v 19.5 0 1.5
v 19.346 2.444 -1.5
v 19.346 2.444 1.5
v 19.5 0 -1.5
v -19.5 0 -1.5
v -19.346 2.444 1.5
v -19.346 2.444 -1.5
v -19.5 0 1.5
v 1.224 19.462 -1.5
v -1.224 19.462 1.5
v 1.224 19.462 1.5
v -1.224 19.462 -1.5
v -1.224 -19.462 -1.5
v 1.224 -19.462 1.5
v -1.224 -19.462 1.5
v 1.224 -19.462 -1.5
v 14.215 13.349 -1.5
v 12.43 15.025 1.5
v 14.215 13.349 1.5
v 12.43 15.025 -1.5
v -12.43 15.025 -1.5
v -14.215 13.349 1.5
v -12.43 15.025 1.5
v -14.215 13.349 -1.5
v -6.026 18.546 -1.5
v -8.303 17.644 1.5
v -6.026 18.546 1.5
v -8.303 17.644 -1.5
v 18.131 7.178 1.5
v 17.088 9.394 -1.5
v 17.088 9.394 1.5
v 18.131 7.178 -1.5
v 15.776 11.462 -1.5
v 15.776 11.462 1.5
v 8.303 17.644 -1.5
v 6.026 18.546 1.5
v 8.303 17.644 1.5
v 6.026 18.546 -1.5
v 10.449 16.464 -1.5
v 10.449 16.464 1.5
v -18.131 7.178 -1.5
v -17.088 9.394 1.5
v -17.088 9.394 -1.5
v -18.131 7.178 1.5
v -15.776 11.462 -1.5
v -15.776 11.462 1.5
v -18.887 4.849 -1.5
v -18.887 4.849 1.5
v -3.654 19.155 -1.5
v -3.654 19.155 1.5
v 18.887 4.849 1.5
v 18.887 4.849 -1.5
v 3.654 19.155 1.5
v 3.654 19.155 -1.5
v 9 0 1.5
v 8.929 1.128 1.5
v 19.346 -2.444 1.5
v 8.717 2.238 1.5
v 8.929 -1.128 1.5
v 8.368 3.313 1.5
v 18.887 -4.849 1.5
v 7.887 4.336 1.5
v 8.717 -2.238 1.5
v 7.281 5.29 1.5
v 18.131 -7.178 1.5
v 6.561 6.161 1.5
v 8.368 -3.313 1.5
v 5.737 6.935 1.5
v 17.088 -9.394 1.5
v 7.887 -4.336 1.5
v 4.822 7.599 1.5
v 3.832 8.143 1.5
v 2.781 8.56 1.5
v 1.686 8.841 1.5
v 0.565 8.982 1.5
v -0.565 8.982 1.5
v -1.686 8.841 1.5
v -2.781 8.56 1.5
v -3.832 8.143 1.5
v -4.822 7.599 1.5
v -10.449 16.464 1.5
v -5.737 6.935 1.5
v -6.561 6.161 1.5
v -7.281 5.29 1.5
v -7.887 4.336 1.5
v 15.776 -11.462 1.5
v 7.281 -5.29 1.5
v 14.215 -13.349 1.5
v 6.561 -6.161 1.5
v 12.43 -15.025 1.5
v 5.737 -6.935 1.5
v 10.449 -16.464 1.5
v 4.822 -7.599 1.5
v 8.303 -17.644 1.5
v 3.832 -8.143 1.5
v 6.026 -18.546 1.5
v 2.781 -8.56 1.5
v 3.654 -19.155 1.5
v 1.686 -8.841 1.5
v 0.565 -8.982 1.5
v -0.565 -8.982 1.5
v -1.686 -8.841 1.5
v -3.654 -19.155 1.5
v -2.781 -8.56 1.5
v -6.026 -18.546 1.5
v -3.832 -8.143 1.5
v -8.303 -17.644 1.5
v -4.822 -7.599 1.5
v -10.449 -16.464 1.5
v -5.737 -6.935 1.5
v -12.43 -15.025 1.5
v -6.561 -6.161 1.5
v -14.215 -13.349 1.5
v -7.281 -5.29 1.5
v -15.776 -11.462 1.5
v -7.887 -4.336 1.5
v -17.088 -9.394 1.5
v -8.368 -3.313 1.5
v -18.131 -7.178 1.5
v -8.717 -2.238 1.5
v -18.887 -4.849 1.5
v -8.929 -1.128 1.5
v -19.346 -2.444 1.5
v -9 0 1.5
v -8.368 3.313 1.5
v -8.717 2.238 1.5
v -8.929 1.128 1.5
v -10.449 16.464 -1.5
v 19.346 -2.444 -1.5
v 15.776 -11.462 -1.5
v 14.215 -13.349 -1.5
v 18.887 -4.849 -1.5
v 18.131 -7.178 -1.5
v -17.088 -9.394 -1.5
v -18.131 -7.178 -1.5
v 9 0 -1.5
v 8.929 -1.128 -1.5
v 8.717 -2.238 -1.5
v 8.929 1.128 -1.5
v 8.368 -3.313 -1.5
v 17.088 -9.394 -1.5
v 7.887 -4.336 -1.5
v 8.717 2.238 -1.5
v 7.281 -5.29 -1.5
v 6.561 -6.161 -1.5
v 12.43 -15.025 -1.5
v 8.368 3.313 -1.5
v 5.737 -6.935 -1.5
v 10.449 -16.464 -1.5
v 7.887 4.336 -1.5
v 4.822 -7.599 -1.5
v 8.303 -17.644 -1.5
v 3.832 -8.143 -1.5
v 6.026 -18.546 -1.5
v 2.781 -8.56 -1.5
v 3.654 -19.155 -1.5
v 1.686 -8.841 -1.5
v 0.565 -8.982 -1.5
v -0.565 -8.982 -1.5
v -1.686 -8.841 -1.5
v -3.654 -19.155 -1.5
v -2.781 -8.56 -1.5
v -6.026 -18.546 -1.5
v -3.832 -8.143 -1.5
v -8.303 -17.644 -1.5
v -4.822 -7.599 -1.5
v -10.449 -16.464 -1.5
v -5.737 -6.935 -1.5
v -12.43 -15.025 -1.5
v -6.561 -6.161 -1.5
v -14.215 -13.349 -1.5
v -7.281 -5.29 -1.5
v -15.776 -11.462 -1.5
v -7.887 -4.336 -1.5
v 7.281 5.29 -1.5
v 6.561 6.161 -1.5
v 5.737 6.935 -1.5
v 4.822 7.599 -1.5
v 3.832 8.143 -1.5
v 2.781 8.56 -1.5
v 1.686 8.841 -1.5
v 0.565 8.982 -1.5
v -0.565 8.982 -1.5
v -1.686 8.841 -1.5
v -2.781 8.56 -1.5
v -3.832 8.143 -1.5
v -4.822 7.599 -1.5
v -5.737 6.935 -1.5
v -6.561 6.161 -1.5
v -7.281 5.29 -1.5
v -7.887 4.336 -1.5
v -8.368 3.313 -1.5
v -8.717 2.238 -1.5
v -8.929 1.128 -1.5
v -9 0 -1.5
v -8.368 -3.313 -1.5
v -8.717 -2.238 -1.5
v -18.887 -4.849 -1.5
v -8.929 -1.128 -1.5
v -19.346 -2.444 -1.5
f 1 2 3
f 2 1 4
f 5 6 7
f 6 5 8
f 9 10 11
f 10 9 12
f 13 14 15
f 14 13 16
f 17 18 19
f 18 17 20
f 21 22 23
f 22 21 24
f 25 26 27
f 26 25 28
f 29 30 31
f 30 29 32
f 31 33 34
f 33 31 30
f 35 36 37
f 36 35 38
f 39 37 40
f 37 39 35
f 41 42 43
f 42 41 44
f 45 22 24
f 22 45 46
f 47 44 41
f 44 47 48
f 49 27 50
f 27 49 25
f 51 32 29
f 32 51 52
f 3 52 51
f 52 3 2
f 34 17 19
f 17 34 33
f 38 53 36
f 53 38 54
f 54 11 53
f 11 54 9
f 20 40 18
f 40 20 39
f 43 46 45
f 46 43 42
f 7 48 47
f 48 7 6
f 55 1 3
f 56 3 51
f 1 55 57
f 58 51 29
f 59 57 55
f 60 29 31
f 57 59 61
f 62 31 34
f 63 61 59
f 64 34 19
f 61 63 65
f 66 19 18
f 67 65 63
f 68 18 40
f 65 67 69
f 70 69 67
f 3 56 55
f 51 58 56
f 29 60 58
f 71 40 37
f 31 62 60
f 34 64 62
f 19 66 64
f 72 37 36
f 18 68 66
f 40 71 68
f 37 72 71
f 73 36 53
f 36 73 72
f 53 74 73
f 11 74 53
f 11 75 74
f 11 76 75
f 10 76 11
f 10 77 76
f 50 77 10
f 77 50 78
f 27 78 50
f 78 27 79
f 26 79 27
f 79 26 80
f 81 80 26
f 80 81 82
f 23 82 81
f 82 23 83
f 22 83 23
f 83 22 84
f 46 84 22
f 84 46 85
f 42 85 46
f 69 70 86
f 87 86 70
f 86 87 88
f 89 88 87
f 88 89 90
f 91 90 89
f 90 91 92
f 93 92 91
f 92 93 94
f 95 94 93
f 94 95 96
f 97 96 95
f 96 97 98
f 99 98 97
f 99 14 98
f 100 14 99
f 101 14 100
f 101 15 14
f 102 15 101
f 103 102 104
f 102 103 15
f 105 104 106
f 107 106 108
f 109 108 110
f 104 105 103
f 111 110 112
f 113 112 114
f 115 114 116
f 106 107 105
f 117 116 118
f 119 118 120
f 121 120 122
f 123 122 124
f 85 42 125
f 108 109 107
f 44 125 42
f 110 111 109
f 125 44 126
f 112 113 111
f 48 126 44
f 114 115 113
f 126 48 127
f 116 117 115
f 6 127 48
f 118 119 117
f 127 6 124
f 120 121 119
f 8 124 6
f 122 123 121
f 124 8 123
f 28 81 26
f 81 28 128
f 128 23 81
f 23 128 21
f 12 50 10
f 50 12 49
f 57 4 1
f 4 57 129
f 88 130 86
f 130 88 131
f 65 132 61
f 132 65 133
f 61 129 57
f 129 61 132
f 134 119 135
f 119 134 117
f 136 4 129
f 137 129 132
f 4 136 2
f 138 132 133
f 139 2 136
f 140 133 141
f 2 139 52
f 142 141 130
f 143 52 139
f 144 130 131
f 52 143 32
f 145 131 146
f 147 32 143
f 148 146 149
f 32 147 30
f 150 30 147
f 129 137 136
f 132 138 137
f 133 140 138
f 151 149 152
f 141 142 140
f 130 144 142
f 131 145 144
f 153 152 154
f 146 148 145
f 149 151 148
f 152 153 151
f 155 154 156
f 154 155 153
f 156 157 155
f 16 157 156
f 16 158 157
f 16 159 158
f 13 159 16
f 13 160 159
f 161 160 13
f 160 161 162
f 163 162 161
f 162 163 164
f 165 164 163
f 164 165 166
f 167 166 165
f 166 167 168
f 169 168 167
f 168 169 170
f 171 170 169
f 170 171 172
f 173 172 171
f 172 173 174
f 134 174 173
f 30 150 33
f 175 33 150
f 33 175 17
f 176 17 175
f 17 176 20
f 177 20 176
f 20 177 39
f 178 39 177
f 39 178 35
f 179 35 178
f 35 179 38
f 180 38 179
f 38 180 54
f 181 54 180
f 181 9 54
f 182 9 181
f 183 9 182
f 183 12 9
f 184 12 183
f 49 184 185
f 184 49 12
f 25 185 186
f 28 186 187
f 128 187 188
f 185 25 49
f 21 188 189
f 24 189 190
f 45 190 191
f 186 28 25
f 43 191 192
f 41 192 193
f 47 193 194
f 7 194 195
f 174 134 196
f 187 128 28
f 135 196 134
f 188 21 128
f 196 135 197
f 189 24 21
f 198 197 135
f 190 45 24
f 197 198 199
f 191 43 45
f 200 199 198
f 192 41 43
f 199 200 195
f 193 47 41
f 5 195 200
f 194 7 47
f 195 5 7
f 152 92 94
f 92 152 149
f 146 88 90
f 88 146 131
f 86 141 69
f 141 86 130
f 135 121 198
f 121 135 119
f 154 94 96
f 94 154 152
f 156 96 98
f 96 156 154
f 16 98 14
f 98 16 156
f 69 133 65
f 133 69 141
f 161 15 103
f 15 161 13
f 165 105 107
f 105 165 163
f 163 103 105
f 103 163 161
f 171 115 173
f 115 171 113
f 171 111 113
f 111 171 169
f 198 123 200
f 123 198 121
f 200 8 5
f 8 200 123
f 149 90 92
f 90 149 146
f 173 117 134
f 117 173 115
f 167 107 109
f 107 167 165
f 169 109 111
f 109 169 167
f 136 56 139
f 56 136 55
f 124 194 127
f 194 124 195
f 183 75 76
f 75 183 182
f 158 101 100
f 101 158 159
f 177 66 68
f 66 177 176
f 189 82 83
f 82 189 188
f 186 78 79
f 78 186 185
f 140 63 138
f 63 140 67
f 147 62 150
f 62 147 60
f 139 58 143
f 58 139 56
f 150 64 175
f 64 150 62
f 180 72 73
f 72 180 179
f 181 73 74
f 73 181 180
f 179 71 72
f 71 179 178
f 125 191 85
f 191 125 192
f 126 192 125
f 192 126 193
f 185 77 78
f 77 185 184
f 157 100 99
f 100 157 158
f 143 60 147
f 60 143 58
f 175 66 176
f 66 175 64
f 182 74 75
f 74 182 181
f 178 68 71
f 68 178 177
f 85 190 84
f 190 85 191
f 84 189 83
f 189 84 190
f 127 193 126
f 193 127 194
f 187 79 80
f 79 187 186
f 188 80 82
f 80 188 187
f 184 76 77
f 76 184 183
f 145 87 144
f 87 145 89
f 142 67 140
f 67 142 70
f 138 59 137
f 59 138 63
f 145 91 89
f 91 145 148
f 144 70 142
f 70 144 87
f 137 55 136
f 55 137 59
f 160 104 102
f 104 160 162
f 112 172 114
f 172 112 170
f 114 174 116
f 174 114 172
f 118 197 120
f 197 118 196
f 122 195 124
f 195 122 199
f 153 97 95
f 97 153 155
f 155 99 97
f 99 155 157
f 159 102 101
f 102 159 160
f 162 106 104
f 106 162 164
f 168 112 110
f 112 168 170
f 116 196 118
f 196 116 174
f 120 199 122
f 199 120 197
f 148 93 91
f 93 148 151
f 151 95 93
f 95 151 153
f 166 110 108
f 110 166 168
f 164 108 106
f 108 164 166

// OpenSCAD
$fn = 50;


difference() {
	union() {
		translate(v = [0, 0, -1.5000000000]) {
			cylinder(h = 3, r = 19.5000000000);
		}
	}
	union() {
		translate(v = [0, 0, -100.0000000000]) {
			cylinder(h = 200, r = 9);
		}
	}
}
